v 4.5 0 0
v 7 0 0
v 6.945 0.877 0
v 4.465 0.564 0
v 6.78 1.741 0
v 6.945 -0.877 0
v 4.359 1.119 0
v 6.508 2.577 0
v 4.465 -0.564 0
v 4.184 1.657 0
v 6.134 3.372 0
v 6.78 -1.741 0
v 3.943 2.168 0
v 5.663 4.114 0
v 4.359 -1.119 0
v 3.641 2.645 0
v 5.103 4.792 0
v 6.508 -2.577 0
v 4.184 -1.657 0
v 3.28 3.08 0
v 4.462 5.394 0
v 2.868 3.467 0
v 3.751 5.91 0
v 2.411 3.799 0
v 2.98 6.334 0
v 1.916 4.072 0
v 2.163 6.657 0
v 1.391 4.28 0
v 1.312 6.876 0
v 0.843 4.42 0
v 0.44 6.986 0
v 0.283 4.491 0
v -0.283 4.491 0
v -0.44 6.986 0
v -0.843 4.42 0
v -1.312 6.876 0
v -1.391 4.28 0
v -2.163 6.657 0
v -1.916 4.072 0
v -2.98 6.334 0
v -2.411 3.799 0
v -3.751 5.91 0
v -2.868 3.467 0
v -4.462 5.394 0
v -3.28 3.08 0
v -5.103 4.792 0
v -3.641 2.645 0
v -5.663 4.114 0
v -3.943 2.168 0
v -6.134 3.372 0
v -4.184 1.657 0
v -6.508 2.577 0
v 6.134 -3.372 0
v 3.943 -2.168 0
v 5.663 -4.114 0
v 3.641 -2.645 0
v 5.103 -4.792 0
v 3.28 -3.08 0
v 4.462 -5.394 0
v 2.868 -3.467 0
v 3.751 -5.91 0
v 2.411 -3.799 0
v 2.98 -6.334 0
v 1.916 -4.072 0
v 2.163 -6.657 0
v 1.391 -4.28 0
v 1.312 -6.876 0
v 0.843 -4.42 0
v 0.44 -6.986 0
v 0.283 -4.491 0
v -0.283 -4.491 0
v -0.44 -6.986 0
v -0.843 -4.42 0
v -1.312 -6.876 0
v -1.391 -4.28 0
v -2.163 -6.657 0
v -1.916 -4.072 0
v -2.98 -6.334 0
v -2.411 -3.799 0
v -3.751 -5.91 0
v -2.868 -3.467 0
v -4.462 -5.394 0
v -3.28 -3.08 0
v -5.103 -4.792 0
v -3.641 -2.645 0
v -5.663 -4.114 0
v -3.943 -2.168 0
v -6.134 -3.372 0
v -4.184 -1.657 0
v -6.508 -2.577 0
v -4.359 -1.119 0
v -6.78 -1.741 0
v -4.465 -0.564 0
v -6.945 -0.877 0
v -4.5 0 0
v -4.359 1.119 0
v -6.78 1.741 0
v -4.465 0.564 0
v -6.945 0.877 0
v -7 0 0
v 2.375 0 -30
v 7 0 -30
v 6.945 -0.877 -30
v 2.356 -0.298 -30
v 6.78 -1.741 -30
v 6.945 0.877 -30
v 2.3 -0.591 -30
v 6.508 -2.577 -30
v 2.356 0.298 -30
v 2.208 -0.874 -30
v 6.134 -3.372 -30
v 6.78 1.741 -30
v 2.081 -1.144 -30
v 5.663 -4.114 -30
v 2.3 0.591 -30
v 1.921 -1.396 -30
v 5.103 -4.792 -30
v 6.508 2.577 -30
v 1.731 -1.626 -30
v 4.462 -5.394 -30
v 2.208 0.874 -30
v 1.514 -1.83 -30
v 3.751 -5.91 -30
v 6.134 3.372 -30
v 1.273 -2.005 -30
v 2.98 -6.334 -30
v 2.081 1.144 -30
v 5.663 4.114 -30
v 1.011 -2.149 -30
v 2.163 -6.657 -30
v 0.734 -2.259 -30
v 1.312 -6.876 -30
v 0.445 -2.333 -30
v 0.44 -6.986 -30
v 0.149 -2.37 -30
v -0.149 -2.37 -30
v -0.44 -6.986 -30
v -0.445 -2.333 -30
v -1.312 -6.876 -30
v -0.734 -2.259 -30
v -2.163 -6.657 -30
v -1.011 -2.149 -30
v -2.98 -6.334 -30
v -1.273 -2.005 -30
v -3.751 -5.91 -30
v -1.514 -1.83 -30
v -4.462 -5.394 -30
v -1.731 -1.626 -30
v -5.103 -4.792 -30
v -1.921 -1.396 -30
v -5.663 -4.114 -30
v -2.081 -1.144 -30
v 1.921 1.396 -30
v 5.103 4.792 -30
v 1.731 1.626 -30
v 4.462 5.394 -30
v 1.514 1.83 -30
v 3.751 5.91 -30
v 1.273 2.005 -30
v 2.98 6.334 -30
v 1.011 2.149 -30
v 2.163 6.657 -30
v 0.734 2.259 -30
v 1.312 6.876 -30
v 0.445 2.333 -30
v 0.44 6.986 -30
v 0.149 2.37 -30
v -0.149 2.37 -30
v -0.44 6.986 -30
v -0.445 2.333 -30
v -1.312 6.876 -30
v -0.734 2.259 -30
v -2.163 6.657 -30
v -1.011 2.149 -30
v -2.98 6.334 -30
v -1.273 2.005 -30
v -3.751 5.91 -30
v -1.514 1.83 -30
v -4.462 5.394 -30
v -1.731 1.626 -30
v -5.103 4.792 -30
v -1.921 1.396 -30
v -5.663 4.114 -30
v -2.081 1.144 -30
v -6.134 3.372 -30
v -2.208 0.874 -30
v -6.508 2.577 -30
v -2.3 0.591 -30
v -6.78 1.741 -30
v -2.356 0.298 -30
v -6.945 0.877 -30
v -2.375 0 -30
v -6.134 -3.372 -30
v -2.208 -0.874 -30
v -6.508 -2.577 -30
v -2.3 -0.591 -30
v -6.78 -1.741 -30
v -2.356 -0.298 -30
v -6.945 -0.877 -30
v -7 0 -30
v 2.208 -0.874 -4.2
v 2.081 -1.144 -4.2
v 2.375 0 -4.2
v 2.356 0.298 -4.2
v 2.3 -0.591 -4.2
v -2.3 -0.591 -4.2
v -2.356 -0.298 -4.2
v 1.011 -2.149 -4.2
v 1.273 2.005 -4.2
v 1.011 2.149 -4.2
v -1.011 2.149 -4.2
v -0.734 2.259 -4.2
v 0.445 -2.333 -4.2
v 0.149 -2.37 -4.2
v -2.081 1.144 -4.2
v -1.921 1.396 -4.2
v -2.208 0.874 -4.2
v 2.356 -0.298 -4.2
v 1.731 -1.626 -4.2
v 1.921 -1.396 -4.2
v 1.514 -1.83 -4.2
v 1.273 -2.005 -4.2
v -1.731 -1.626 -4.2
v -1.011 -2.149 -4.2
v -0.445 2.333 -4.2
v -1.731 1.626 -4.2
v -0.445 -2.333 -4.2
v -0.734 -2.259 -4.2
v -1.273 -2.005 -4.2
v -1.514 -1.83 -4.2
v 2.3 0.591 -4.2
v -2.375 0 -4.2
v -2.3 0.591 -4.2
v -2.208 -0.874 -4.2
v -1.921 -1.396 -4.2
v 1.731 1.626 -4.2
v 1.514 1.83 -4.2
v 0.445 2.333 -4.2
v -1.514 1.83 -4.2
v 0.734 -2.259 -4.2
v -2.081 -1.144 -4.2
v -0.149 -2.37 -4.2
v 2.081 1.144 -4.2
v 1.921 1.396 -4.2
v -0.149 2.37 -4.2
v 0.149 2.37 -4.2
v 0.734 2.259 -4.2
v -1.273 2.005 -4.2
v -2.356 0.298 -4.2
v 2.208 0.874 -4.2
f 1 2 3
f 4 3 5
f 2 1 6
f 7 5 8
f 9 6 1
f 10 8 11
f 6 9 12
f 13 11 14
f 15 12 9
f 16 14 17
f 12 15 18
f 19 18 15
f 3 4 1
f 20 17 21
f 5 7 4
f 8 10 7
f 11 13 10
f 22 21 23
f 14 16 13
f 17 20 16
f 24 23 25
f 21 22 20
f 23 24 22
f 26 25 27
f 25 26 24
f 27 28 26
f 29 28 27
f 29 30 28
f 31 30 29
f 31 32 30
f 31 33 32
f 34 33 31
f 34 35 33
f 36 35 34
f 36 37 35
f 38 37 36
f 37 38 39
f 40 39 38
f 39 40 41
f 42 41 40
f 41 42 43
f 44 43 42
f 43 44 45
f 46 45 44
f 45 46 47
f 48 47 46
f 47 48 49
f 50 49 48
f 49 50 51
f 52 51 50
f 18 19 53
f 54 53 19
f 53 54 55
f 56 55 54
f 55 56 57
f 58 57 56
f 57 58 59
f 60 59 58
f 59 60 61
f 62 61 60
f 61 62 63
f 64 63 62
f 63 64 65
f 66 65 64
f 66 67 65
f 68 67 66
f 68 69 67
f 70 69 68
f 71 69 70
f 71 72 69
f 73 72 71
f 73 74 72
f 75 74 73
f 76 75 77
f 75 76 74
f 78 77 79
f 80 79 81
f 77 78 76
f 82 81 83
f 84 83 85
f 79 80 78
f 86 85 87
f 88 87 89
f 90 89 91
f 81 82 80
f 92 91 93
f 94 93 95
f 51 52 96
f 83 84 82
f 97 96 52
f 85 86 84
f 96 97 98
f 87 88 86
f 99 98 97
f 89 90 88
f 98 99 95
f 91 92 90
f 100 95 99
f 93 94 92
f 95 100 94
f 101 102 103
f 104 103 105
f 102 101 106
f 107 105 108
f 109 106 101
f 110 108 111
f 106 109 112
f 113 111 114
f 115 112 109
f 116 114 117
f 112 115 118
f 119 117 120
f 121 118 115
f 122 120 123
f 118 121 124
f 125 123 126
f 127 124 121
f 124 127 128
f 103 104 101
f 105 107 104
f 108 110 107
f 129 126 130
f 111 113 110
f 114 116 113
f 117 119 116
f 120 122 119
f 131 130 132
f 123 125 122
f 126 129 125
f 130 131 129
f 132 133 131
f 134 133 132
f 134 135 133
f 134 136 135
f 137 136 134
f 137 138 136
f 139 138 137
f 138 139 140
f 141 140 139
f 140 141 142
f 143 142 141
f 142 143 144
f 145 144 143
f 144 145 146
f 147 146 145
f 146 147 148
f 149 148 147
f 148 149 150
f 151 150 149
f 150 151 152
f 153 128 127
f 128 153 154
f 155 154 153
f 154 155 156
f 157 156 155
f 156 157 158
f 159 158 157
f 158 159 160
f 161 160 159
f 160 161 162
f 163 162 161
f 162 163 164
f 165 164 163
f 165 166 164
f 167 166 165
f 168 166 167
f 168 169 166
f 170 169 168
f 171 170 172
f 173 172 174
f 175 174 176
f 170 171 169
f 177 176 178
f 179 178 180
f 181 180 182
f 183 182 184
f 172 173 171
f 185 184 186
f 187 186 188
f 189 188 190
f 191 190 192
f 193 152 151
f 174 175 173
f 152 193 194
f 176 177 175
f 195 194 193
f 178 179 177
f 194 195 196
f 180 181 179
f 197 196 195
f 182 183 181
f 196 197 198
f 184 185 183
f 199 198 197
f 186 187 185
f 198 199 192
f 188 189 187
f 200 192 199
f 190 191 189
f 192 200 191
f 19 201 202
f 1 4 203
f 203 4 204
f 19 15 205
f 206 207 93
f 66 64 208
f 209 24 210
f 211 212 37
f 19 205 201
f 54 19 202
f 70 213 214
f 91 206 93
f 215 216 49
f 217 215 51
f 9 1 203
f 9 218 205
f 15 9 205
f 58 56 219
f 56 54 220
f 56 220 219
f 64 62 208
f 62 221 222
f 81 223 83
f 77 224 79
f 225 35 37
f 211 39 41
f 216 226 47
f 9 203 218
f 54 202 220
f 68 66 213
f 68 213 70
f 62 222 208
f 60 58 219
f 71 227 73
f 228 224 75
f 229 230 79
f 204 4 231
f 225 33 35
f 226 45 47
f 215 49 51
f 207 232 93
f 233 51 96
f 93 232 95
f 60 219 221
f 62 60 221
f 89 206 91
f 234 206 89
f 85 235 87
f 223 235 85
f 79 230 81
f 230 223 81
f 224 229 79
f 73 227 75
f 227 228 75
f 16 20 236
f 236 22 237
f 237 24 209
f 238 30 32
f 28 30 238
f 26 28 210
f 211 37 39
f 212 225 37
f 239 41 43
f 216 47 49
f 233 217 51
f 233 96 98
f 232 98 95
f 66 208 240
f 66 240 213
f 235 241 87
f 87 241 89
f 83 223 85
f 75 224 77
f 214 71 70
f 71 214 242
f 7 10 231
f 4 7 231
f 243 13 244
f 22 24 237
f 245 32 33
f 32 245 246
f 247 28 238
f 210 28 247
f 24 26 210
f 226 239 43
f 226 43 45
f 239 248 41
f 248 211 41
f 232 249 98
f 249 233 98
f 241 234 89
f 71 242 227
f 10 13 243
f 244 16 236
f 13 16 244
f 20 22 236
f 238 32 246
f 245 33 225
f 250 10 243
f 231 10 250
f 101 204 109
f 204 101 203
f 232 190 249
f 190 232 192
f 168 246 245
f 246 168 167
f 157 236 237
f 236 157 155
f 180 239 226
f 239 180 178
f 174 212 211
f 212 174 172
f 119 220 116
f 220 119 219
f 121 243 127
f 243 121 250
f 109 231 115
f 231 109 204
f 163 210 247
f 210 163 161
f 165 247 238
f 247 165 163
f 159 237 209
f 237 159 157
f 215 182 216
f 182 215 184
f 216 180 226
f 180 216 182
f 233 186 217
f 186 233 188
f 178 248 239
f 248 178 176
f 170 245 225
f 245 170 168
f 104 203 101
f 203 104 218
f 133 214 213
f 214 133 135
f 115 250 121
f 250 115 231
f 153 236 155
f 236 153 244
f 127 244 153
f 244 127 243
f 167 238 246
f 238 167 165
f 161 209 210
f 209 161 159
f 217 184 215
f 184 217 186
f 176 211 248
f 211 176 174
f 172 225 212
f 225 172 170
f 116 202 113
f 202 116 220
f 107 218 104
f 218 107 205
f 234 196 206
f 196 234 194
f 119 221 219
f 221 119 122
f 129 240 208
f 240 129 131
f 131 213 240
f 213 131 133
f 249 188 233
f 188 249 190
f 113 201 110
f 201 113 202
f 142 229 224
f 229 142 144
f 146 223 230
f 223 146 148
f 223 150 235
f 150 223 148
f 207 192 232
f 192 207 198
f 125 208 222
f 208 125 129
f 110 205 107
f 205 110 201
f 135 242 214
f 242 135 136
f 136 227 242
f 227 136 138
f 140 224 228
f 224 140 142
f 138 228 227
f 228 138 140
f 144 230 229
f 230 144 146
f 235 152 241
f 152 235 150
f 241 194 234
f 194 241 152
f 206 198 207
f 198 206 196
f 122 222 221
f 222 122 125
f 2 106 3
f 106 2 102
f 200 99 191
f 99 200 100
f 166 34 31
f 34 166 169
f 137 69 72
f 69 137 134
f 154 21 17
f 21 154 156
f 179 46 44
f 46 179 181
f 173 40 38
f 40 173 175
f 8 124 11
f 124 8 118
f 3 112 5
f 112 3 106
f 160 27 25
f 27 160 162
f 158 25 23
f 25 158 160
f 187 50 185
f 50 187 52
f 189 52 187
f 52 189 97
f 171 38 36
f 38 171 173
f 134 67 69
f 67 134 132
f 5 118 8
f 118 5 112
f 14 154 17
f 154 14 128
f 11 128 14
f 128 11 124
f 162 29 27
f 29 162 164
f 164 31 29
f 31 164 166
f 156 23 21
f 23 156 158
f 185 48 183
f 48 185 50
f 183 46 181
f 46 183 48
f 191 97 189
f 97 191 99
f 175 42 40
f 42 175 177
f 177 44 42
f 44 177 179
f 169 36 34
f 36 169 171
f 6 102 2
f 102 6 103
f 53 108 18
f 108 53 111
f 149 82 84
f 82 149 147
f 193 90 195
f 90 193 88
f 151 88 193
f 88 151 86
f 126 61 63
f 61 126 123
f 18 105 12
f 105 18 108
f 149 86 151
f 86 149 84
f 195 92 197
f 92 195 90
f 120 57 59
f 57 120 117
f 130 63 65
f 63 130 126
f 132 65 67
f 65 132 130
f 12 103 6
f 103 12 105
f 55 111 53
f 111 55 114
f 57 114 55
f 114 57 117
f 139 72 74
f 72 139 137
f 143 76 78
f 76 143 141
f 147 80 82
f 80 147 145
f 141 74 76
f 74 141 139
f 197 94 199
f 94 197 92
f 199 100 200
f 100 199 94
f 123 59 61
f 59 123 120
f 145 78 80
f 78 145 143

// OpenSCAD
$fn = 50;


difference() {
	union() {
		translate(v = [0, 0, -30.0000000000]) {
			cylinder(h = 30, r = 7.0000000000);
		}
	}
	union() {
		translate(v = [0, 0, 0]) {
			rotate(a = [0, 0, 0]) {
				difference() {
					union() {
						#translate(v = [0, 0, -30.0000000000]) {
							cylinder(h = 30, r = 2.2500000000);
						}
						#translate(v = [0, 0, -4.2000000000]) {
							cylinder(h = 4.2000000000, r = 7.0000000000, r1 = 2.3750000000, r2 = 4.5000000000);
						}
						#translate(v = [0, 0, -30.0000000000]) {
							cylinder(h = 30, r = 2.3750000000);
						}
						#translate(v = [0, 0, -30.0000000000]) {
							cylinder(h = 30, r = 2.2500000000);
						}
					}
					union();
				}
			}
		}
	}
}
